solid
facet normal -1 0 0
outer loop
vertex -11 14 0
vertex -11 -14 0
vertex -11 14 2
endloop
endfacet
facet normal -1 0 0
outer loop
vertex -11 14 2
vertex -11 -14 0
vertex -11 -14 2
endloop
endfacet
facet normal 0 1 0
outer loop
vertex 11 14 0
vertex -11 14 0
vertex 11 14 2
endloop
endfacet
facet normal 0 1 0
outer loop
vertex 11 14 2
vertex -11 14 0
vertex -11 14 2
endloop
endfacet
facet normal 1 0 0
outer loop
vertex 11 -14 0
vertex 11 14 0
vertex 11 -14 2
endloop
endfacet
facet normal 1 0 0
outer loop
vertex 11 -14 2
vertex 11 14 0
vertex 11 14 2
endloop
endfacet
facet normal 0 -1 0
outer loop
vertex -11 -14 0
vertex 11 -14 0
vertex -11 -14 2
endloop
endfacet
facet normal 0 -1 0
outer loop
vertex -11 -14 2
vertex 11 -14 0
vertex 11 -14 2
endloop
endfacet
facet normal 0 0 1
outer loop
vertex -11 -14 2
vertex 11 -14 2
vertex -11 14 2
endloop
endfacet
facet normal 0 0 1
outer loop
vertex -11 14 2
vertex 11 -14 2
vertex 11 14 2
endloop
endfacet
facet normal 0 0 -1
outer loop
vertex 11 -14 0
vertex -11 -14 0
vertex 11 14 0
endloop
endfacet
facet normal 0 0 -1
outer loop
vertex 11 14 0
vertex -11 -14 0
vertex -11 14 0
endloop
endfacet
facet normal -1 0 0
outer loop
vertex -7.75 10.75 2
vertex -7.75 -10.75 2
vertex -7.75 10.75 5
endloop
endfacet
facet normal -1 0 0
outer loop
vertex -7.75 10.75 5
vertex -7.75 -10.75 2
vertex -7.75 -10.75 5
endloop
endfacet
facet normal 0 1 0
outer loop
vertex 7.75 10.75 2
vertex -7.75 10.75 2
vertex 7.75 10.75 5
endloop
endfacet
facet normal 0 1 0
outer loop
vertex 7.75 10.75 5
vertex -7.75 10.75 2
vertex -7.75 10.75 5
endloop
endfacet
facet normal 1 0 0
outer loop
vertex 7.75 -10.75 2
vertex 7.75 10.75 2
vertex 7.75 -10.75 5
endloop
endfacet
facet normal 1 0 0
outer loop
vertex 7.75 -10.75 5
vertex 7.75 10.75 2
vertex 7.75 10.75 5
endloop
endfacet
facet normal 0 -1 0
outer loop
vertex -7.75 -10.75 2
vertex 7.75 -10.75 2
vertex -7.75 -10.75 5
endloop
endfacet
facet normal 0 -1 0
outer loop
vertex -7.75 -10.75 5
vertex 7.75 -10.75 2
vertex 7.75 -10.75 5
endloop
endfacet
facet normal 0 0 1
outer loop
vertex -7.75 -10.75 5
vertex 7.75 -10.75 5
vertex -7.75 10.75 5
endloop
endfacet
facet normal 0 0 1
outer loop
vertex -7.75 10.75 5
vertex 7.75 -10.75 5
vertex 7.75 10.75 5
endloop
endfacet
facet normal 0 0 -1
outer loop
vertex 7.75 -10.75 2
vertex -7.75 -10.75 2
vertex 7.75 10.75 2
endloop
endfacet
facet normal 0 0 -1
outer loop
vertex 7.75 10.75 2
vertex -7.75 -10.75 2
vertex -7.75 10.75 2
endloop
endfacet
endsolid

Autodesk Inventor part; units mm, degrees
ref_plane "YZ Plane" through (0, 0, 0) normal (1, 0, 0) x (0, 1, 0)
ref_plane "XZ Plane" through (0, 0, 0) normal (0, 1, 0) x (-1, 0, 0)
sketch "Skizze1" plane through (0, 0, 0) normal (0, 0, 1) x (1, 0, 0)
  line L0 (-11, -14) -> (11, -14)
  line L1 (11, -14) -> (11, 14)
  line L2 (11, 14) -> (-11, 14)
  line L3 (-11, 14) -> (-11, -14)
extrude "Extrusion1" add sketch "Skizze1" along normal blind 2
ref_plane "Arbeitsebene1" through (0, 0, 2) normal (0, 0, 1) x (1, 0, 0)
sketch "Skizze2" plane through (0, 0, 2) normal (0, 0, 1) x (1, 0, 0)
  line L0 (-7.75, -10.75) -> (7.75, -10.75)
  line L1 (7.75, -10.75) -> (7.75, 10.75)
  line L2 (7.75, 10.75) -> (-7.75, 10.75)
  line L3 (-7.75, 10.75) -> (-7.75, -10.75)
extrude "Extrusion2" add sketch "Skizze2" along normal blind 3 separate body
properties part number "Motor_Fensterdeckel"
